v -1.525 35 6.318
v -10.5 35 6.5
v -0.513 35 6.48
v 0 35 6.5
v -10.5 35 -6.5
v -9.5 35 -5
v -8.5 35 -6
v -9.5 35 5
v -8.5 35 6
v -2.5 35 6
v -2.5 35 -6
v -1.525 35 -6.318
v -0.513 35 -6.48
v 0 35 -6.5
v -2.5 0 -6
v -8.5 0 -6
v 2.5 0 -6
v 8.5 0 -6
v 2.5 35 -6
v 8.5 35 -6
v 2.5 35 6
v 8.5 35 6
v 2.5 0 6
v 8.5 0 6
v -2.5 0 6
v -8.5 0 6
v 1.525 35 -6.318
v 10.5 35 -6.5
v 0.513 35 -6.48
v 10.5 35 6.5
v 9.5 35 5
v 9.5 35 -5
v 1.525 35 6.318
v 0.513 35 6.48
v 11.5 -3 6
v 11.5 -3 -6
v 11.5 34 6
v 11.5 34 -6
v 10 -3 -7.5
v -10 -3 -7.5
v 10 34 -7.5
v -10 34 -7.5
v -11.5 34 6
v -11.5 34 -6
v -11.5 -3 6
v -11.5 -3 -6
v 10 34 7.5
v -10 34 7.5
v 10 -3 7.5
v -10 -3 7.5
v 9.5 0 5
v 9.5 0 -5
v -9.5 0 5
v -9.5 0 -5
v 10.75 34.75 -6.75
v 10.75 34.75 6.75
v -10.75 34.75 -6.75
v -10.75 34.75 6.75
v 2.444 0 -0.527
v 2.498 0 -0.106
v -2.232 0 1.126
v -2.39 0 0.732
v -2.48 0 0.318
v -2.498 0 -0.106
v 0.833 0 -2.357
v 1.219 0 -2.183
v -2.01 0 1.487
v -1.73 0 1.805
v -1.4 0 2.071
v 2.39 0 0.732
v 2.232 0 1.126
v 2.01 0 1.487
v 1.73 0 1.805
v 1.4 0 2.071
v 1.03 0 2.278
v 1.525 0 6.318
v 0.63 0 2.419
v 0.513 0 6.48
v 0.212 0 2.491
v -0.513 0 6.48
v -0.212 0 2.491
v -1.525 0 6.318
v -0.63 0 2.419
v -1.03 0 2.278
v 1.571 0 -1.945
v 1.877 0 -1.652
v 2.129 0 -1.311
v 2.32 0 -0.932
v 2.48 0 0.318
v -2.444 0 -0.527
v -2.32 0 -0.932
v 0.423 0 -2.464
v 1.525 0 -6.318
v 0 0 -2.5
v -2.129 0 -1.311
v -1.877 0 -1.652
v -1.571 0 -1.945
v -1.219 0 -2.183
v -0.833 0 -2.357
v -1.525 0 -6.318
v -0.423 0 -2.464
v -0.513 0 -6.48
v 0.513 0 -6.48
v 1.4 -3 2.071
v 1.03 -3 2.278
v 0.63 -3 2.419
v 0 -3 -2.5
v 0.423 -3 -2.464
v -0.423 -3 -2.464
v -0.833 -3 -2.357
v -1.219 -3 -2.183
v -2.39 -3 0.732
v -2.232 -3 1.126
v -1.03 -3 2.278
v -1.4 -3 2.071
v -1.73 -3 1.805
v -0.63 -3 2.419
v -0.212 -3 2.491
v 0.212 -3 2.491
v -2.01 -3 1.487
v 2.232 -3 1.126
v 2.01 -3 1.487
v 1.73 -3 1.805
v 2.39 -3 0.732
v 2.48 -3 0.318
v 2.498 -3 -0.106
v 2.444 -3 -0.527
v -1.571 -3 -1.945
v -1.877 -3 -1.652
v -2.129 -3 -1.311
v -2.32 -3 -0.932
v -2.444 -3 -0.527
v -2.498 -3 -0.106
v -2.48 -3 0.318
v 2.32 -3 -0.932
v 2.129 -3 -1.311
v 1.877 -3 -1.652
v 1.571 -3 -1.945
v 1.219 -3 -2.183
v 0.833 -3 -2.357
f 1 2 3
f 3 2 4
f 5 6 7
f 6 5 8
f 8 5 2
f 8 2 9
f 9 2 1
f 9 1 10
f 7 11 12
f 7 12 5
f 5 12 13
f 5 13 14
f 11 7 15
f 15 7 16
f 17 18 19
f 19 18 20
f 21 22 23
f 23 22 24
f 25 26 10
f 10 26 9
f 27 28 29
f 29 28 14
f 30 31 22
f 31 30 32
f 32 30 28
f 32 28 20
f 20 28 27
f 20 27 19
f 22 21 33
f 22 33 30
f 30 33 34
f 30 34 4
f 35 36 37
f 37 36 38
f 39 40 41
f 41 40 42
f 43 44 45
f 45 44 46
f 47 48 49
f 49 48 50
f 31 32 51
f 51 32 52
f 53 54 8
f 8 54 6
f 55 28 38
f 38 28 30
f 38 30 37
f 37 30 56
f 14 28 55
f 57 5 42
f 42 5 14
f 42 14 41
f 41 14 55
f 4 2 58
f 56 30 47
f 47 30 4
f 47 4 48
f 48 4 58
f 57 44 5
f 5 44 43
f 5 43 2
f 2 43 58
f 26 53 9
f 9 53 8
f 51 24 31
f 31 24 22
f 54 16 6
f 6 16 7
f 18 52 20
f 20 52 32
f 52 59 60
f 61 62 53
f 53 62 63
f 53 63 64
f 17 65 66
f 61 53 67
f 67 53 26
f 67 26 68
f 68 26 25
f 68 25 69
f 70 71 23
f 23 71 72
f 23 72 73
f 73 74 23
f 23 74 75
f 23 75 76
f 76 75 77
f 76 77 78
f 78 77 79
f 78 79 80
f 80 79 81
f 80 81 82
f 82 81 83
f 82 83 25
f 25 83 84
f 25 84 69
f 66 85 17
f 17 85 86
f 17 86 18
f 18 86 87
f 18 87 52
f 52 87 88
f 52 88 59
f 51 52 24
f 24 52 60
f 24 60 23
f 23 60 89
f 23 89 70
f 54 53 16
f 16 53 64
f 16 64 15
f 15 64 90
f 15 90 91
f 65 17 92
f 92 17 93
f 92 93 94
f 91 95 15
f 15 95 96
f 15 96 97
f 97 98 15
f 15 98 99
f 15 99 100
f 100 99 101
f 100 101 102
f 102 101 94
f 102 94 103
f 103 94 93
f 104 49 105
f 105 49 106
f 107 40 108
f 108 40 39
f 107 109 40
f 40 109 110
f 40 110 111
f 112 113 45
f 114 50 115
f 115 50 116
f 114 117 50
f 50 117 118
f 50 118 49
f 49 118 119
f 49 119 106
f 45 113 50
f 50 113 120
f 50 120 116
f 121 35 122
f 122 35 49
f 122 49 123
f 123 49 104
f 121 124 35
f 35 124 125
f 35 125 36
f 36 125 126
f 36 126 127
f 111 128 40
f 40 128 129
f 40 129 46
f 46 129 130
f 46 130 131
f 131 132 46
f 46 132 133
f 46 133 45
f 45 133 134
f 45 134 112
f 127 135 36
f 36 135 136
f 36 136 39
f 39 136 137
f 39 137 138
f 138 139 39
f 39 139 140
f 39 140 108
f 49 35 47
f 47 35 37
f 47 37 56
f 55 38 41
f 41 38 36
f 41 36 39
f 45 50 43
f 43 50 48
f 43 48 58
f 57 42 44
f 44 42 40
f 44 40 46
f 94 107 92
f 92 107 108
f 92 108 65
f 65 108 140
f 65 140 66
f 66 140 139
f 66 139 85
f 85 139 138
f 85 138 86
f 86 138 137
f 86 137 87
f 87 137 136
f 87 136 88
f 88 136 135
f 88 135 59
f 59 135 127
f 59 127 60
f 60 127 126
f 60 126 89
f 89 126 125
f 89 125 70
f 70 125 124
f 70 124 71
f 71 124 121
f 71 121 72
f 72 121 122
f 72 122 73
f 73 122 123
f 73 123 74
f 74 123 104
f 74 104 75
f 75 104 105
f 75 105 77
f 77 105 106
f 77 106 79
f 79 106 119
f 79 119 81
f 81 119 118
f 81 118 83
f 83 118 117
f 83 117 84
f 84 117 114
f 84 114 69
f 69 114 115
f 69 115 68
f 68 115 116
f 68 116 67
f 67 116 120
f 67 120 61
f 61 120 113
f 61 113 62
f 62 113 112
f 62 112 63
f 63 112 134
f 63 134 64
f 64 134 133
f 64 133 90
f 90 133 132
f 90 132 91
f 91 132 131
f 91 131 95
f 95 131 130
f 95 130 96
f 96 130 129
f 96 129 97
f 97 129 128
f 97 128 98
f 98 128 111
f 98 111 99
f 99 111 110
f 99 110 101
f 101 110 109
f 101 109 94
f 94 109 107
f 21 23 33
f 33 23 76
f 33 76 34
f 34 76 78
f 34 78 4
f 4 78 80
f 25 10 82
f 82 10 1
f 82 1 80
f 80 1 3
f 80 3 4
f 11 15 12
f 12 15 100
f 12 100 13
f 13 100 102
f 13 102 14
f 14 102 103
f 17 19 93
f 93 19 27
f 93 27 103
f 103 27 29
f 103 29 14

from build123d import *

# Parameters (mm, degrees)
SKETCH1_W           = 23
SKETCH1_H           = 15
SKETCH1_W_2         = 19
SKETCH1_H_2         = 12
BOSS_EXTRUDE1_DEPTH = 35
CHAMFER1_SIZE       = 1
CHAMFER2_SIZE       = 1
SKETCH2_W           = 23
SKETCH2_H           = 15
BOSS_EXTRUDE2_DEPTH = 3
CHAMFER4_SIZE       = 1.5
SKETCH3_R           = 2.5
CUT_EXTRUDE1_DEPTH  = 3
SKETCH5_R           = 6.5
CUT_EXTRUDE3_DEPTH  = 40


with BuildPart() as part:
    # Sketch1 → Boss-Extrude1 (new body)
    with BuildSketch(Plane(origin=(0, 0, 0), x_dir=(1, 0, 0), z_dir=(0, 1, 0))):
        Rectangle(SKETCH1_W, SKETCH1_H)
        Rectangle(SKETCH1_W_2, SKETCH1_H_2, mode=Mode.SUBTRACT)
    extrude(amount=BOSS_EXTRUDE1_DEPTH)

    # Chamfer1
    chamfer1_edges = [part.edges().sort_by_distance(p)[0] for p in [
        (-11.5, 35, 0),
        (0, 35, 7.5),
        (11.5, 35, 0),
        (0, 35, -7.5),
    ]]
    chamfer(chamfer1_edges, length=CHAMFER1_SIZE)

    # Chamfer2
    chamfer2_edges = [part.edges().sort_by_distance(p)[0] for p in [
        (9.5, 17.5, 6),
        (9.5, 17.5, -6),
        (-9.5, 17.5, -6),
        (-9.5, 17.5, 6),
    ]]
    chamfer(chamfer2_edges, length=CHAMFER2_SIZE)

    # Sketch2 → Boss-Extrude2 (add)
    with BuildSketch(Plane.XZ):
        Rectangle(SKETCH2_W, SKETCH2_H)
    extrude(amount=BOSS_EXTRUDE2_DEPTH)

    # Chamfer4
    chamfer4_edges = [part.edges().sort_by_distance(p)[0] for p in [
        (-11.5, 15.5, 7.5),
        (-11.5, 15.5, -7.5),
        (11.5, 15.5, -7.5),
        (11.5, 15.5, 7.5),
    ]]
    chamfer(chamfer4_edges, length=CHAMFER4_SIZE)

    # Sketch3 → Cut-Extrude1 (cut)
    with BuildSketch(Plane.XZ.offset(3)):
        with Locations(Location((0, 0, 0), (0, 0, 270))):
            Circle(SKETCH3_R)
    extrude(amount=-CUT_EXTRUDE1_DEPTH, mode=Mode.SUBTRACT)

    # Sketch5 → Cut-Extrude3 (cut)
    with BuildSketch(Plane(origin=(0, 0, 0), x_dir=(1, 0, 0), z_dir=(0, 1, 0))):
        Circle(SKETCH5_R)
    extrude(amount=CUT_EXTRUDE3_DEPTH, mode=Mode.SUBTRACT)


solid = part.part
